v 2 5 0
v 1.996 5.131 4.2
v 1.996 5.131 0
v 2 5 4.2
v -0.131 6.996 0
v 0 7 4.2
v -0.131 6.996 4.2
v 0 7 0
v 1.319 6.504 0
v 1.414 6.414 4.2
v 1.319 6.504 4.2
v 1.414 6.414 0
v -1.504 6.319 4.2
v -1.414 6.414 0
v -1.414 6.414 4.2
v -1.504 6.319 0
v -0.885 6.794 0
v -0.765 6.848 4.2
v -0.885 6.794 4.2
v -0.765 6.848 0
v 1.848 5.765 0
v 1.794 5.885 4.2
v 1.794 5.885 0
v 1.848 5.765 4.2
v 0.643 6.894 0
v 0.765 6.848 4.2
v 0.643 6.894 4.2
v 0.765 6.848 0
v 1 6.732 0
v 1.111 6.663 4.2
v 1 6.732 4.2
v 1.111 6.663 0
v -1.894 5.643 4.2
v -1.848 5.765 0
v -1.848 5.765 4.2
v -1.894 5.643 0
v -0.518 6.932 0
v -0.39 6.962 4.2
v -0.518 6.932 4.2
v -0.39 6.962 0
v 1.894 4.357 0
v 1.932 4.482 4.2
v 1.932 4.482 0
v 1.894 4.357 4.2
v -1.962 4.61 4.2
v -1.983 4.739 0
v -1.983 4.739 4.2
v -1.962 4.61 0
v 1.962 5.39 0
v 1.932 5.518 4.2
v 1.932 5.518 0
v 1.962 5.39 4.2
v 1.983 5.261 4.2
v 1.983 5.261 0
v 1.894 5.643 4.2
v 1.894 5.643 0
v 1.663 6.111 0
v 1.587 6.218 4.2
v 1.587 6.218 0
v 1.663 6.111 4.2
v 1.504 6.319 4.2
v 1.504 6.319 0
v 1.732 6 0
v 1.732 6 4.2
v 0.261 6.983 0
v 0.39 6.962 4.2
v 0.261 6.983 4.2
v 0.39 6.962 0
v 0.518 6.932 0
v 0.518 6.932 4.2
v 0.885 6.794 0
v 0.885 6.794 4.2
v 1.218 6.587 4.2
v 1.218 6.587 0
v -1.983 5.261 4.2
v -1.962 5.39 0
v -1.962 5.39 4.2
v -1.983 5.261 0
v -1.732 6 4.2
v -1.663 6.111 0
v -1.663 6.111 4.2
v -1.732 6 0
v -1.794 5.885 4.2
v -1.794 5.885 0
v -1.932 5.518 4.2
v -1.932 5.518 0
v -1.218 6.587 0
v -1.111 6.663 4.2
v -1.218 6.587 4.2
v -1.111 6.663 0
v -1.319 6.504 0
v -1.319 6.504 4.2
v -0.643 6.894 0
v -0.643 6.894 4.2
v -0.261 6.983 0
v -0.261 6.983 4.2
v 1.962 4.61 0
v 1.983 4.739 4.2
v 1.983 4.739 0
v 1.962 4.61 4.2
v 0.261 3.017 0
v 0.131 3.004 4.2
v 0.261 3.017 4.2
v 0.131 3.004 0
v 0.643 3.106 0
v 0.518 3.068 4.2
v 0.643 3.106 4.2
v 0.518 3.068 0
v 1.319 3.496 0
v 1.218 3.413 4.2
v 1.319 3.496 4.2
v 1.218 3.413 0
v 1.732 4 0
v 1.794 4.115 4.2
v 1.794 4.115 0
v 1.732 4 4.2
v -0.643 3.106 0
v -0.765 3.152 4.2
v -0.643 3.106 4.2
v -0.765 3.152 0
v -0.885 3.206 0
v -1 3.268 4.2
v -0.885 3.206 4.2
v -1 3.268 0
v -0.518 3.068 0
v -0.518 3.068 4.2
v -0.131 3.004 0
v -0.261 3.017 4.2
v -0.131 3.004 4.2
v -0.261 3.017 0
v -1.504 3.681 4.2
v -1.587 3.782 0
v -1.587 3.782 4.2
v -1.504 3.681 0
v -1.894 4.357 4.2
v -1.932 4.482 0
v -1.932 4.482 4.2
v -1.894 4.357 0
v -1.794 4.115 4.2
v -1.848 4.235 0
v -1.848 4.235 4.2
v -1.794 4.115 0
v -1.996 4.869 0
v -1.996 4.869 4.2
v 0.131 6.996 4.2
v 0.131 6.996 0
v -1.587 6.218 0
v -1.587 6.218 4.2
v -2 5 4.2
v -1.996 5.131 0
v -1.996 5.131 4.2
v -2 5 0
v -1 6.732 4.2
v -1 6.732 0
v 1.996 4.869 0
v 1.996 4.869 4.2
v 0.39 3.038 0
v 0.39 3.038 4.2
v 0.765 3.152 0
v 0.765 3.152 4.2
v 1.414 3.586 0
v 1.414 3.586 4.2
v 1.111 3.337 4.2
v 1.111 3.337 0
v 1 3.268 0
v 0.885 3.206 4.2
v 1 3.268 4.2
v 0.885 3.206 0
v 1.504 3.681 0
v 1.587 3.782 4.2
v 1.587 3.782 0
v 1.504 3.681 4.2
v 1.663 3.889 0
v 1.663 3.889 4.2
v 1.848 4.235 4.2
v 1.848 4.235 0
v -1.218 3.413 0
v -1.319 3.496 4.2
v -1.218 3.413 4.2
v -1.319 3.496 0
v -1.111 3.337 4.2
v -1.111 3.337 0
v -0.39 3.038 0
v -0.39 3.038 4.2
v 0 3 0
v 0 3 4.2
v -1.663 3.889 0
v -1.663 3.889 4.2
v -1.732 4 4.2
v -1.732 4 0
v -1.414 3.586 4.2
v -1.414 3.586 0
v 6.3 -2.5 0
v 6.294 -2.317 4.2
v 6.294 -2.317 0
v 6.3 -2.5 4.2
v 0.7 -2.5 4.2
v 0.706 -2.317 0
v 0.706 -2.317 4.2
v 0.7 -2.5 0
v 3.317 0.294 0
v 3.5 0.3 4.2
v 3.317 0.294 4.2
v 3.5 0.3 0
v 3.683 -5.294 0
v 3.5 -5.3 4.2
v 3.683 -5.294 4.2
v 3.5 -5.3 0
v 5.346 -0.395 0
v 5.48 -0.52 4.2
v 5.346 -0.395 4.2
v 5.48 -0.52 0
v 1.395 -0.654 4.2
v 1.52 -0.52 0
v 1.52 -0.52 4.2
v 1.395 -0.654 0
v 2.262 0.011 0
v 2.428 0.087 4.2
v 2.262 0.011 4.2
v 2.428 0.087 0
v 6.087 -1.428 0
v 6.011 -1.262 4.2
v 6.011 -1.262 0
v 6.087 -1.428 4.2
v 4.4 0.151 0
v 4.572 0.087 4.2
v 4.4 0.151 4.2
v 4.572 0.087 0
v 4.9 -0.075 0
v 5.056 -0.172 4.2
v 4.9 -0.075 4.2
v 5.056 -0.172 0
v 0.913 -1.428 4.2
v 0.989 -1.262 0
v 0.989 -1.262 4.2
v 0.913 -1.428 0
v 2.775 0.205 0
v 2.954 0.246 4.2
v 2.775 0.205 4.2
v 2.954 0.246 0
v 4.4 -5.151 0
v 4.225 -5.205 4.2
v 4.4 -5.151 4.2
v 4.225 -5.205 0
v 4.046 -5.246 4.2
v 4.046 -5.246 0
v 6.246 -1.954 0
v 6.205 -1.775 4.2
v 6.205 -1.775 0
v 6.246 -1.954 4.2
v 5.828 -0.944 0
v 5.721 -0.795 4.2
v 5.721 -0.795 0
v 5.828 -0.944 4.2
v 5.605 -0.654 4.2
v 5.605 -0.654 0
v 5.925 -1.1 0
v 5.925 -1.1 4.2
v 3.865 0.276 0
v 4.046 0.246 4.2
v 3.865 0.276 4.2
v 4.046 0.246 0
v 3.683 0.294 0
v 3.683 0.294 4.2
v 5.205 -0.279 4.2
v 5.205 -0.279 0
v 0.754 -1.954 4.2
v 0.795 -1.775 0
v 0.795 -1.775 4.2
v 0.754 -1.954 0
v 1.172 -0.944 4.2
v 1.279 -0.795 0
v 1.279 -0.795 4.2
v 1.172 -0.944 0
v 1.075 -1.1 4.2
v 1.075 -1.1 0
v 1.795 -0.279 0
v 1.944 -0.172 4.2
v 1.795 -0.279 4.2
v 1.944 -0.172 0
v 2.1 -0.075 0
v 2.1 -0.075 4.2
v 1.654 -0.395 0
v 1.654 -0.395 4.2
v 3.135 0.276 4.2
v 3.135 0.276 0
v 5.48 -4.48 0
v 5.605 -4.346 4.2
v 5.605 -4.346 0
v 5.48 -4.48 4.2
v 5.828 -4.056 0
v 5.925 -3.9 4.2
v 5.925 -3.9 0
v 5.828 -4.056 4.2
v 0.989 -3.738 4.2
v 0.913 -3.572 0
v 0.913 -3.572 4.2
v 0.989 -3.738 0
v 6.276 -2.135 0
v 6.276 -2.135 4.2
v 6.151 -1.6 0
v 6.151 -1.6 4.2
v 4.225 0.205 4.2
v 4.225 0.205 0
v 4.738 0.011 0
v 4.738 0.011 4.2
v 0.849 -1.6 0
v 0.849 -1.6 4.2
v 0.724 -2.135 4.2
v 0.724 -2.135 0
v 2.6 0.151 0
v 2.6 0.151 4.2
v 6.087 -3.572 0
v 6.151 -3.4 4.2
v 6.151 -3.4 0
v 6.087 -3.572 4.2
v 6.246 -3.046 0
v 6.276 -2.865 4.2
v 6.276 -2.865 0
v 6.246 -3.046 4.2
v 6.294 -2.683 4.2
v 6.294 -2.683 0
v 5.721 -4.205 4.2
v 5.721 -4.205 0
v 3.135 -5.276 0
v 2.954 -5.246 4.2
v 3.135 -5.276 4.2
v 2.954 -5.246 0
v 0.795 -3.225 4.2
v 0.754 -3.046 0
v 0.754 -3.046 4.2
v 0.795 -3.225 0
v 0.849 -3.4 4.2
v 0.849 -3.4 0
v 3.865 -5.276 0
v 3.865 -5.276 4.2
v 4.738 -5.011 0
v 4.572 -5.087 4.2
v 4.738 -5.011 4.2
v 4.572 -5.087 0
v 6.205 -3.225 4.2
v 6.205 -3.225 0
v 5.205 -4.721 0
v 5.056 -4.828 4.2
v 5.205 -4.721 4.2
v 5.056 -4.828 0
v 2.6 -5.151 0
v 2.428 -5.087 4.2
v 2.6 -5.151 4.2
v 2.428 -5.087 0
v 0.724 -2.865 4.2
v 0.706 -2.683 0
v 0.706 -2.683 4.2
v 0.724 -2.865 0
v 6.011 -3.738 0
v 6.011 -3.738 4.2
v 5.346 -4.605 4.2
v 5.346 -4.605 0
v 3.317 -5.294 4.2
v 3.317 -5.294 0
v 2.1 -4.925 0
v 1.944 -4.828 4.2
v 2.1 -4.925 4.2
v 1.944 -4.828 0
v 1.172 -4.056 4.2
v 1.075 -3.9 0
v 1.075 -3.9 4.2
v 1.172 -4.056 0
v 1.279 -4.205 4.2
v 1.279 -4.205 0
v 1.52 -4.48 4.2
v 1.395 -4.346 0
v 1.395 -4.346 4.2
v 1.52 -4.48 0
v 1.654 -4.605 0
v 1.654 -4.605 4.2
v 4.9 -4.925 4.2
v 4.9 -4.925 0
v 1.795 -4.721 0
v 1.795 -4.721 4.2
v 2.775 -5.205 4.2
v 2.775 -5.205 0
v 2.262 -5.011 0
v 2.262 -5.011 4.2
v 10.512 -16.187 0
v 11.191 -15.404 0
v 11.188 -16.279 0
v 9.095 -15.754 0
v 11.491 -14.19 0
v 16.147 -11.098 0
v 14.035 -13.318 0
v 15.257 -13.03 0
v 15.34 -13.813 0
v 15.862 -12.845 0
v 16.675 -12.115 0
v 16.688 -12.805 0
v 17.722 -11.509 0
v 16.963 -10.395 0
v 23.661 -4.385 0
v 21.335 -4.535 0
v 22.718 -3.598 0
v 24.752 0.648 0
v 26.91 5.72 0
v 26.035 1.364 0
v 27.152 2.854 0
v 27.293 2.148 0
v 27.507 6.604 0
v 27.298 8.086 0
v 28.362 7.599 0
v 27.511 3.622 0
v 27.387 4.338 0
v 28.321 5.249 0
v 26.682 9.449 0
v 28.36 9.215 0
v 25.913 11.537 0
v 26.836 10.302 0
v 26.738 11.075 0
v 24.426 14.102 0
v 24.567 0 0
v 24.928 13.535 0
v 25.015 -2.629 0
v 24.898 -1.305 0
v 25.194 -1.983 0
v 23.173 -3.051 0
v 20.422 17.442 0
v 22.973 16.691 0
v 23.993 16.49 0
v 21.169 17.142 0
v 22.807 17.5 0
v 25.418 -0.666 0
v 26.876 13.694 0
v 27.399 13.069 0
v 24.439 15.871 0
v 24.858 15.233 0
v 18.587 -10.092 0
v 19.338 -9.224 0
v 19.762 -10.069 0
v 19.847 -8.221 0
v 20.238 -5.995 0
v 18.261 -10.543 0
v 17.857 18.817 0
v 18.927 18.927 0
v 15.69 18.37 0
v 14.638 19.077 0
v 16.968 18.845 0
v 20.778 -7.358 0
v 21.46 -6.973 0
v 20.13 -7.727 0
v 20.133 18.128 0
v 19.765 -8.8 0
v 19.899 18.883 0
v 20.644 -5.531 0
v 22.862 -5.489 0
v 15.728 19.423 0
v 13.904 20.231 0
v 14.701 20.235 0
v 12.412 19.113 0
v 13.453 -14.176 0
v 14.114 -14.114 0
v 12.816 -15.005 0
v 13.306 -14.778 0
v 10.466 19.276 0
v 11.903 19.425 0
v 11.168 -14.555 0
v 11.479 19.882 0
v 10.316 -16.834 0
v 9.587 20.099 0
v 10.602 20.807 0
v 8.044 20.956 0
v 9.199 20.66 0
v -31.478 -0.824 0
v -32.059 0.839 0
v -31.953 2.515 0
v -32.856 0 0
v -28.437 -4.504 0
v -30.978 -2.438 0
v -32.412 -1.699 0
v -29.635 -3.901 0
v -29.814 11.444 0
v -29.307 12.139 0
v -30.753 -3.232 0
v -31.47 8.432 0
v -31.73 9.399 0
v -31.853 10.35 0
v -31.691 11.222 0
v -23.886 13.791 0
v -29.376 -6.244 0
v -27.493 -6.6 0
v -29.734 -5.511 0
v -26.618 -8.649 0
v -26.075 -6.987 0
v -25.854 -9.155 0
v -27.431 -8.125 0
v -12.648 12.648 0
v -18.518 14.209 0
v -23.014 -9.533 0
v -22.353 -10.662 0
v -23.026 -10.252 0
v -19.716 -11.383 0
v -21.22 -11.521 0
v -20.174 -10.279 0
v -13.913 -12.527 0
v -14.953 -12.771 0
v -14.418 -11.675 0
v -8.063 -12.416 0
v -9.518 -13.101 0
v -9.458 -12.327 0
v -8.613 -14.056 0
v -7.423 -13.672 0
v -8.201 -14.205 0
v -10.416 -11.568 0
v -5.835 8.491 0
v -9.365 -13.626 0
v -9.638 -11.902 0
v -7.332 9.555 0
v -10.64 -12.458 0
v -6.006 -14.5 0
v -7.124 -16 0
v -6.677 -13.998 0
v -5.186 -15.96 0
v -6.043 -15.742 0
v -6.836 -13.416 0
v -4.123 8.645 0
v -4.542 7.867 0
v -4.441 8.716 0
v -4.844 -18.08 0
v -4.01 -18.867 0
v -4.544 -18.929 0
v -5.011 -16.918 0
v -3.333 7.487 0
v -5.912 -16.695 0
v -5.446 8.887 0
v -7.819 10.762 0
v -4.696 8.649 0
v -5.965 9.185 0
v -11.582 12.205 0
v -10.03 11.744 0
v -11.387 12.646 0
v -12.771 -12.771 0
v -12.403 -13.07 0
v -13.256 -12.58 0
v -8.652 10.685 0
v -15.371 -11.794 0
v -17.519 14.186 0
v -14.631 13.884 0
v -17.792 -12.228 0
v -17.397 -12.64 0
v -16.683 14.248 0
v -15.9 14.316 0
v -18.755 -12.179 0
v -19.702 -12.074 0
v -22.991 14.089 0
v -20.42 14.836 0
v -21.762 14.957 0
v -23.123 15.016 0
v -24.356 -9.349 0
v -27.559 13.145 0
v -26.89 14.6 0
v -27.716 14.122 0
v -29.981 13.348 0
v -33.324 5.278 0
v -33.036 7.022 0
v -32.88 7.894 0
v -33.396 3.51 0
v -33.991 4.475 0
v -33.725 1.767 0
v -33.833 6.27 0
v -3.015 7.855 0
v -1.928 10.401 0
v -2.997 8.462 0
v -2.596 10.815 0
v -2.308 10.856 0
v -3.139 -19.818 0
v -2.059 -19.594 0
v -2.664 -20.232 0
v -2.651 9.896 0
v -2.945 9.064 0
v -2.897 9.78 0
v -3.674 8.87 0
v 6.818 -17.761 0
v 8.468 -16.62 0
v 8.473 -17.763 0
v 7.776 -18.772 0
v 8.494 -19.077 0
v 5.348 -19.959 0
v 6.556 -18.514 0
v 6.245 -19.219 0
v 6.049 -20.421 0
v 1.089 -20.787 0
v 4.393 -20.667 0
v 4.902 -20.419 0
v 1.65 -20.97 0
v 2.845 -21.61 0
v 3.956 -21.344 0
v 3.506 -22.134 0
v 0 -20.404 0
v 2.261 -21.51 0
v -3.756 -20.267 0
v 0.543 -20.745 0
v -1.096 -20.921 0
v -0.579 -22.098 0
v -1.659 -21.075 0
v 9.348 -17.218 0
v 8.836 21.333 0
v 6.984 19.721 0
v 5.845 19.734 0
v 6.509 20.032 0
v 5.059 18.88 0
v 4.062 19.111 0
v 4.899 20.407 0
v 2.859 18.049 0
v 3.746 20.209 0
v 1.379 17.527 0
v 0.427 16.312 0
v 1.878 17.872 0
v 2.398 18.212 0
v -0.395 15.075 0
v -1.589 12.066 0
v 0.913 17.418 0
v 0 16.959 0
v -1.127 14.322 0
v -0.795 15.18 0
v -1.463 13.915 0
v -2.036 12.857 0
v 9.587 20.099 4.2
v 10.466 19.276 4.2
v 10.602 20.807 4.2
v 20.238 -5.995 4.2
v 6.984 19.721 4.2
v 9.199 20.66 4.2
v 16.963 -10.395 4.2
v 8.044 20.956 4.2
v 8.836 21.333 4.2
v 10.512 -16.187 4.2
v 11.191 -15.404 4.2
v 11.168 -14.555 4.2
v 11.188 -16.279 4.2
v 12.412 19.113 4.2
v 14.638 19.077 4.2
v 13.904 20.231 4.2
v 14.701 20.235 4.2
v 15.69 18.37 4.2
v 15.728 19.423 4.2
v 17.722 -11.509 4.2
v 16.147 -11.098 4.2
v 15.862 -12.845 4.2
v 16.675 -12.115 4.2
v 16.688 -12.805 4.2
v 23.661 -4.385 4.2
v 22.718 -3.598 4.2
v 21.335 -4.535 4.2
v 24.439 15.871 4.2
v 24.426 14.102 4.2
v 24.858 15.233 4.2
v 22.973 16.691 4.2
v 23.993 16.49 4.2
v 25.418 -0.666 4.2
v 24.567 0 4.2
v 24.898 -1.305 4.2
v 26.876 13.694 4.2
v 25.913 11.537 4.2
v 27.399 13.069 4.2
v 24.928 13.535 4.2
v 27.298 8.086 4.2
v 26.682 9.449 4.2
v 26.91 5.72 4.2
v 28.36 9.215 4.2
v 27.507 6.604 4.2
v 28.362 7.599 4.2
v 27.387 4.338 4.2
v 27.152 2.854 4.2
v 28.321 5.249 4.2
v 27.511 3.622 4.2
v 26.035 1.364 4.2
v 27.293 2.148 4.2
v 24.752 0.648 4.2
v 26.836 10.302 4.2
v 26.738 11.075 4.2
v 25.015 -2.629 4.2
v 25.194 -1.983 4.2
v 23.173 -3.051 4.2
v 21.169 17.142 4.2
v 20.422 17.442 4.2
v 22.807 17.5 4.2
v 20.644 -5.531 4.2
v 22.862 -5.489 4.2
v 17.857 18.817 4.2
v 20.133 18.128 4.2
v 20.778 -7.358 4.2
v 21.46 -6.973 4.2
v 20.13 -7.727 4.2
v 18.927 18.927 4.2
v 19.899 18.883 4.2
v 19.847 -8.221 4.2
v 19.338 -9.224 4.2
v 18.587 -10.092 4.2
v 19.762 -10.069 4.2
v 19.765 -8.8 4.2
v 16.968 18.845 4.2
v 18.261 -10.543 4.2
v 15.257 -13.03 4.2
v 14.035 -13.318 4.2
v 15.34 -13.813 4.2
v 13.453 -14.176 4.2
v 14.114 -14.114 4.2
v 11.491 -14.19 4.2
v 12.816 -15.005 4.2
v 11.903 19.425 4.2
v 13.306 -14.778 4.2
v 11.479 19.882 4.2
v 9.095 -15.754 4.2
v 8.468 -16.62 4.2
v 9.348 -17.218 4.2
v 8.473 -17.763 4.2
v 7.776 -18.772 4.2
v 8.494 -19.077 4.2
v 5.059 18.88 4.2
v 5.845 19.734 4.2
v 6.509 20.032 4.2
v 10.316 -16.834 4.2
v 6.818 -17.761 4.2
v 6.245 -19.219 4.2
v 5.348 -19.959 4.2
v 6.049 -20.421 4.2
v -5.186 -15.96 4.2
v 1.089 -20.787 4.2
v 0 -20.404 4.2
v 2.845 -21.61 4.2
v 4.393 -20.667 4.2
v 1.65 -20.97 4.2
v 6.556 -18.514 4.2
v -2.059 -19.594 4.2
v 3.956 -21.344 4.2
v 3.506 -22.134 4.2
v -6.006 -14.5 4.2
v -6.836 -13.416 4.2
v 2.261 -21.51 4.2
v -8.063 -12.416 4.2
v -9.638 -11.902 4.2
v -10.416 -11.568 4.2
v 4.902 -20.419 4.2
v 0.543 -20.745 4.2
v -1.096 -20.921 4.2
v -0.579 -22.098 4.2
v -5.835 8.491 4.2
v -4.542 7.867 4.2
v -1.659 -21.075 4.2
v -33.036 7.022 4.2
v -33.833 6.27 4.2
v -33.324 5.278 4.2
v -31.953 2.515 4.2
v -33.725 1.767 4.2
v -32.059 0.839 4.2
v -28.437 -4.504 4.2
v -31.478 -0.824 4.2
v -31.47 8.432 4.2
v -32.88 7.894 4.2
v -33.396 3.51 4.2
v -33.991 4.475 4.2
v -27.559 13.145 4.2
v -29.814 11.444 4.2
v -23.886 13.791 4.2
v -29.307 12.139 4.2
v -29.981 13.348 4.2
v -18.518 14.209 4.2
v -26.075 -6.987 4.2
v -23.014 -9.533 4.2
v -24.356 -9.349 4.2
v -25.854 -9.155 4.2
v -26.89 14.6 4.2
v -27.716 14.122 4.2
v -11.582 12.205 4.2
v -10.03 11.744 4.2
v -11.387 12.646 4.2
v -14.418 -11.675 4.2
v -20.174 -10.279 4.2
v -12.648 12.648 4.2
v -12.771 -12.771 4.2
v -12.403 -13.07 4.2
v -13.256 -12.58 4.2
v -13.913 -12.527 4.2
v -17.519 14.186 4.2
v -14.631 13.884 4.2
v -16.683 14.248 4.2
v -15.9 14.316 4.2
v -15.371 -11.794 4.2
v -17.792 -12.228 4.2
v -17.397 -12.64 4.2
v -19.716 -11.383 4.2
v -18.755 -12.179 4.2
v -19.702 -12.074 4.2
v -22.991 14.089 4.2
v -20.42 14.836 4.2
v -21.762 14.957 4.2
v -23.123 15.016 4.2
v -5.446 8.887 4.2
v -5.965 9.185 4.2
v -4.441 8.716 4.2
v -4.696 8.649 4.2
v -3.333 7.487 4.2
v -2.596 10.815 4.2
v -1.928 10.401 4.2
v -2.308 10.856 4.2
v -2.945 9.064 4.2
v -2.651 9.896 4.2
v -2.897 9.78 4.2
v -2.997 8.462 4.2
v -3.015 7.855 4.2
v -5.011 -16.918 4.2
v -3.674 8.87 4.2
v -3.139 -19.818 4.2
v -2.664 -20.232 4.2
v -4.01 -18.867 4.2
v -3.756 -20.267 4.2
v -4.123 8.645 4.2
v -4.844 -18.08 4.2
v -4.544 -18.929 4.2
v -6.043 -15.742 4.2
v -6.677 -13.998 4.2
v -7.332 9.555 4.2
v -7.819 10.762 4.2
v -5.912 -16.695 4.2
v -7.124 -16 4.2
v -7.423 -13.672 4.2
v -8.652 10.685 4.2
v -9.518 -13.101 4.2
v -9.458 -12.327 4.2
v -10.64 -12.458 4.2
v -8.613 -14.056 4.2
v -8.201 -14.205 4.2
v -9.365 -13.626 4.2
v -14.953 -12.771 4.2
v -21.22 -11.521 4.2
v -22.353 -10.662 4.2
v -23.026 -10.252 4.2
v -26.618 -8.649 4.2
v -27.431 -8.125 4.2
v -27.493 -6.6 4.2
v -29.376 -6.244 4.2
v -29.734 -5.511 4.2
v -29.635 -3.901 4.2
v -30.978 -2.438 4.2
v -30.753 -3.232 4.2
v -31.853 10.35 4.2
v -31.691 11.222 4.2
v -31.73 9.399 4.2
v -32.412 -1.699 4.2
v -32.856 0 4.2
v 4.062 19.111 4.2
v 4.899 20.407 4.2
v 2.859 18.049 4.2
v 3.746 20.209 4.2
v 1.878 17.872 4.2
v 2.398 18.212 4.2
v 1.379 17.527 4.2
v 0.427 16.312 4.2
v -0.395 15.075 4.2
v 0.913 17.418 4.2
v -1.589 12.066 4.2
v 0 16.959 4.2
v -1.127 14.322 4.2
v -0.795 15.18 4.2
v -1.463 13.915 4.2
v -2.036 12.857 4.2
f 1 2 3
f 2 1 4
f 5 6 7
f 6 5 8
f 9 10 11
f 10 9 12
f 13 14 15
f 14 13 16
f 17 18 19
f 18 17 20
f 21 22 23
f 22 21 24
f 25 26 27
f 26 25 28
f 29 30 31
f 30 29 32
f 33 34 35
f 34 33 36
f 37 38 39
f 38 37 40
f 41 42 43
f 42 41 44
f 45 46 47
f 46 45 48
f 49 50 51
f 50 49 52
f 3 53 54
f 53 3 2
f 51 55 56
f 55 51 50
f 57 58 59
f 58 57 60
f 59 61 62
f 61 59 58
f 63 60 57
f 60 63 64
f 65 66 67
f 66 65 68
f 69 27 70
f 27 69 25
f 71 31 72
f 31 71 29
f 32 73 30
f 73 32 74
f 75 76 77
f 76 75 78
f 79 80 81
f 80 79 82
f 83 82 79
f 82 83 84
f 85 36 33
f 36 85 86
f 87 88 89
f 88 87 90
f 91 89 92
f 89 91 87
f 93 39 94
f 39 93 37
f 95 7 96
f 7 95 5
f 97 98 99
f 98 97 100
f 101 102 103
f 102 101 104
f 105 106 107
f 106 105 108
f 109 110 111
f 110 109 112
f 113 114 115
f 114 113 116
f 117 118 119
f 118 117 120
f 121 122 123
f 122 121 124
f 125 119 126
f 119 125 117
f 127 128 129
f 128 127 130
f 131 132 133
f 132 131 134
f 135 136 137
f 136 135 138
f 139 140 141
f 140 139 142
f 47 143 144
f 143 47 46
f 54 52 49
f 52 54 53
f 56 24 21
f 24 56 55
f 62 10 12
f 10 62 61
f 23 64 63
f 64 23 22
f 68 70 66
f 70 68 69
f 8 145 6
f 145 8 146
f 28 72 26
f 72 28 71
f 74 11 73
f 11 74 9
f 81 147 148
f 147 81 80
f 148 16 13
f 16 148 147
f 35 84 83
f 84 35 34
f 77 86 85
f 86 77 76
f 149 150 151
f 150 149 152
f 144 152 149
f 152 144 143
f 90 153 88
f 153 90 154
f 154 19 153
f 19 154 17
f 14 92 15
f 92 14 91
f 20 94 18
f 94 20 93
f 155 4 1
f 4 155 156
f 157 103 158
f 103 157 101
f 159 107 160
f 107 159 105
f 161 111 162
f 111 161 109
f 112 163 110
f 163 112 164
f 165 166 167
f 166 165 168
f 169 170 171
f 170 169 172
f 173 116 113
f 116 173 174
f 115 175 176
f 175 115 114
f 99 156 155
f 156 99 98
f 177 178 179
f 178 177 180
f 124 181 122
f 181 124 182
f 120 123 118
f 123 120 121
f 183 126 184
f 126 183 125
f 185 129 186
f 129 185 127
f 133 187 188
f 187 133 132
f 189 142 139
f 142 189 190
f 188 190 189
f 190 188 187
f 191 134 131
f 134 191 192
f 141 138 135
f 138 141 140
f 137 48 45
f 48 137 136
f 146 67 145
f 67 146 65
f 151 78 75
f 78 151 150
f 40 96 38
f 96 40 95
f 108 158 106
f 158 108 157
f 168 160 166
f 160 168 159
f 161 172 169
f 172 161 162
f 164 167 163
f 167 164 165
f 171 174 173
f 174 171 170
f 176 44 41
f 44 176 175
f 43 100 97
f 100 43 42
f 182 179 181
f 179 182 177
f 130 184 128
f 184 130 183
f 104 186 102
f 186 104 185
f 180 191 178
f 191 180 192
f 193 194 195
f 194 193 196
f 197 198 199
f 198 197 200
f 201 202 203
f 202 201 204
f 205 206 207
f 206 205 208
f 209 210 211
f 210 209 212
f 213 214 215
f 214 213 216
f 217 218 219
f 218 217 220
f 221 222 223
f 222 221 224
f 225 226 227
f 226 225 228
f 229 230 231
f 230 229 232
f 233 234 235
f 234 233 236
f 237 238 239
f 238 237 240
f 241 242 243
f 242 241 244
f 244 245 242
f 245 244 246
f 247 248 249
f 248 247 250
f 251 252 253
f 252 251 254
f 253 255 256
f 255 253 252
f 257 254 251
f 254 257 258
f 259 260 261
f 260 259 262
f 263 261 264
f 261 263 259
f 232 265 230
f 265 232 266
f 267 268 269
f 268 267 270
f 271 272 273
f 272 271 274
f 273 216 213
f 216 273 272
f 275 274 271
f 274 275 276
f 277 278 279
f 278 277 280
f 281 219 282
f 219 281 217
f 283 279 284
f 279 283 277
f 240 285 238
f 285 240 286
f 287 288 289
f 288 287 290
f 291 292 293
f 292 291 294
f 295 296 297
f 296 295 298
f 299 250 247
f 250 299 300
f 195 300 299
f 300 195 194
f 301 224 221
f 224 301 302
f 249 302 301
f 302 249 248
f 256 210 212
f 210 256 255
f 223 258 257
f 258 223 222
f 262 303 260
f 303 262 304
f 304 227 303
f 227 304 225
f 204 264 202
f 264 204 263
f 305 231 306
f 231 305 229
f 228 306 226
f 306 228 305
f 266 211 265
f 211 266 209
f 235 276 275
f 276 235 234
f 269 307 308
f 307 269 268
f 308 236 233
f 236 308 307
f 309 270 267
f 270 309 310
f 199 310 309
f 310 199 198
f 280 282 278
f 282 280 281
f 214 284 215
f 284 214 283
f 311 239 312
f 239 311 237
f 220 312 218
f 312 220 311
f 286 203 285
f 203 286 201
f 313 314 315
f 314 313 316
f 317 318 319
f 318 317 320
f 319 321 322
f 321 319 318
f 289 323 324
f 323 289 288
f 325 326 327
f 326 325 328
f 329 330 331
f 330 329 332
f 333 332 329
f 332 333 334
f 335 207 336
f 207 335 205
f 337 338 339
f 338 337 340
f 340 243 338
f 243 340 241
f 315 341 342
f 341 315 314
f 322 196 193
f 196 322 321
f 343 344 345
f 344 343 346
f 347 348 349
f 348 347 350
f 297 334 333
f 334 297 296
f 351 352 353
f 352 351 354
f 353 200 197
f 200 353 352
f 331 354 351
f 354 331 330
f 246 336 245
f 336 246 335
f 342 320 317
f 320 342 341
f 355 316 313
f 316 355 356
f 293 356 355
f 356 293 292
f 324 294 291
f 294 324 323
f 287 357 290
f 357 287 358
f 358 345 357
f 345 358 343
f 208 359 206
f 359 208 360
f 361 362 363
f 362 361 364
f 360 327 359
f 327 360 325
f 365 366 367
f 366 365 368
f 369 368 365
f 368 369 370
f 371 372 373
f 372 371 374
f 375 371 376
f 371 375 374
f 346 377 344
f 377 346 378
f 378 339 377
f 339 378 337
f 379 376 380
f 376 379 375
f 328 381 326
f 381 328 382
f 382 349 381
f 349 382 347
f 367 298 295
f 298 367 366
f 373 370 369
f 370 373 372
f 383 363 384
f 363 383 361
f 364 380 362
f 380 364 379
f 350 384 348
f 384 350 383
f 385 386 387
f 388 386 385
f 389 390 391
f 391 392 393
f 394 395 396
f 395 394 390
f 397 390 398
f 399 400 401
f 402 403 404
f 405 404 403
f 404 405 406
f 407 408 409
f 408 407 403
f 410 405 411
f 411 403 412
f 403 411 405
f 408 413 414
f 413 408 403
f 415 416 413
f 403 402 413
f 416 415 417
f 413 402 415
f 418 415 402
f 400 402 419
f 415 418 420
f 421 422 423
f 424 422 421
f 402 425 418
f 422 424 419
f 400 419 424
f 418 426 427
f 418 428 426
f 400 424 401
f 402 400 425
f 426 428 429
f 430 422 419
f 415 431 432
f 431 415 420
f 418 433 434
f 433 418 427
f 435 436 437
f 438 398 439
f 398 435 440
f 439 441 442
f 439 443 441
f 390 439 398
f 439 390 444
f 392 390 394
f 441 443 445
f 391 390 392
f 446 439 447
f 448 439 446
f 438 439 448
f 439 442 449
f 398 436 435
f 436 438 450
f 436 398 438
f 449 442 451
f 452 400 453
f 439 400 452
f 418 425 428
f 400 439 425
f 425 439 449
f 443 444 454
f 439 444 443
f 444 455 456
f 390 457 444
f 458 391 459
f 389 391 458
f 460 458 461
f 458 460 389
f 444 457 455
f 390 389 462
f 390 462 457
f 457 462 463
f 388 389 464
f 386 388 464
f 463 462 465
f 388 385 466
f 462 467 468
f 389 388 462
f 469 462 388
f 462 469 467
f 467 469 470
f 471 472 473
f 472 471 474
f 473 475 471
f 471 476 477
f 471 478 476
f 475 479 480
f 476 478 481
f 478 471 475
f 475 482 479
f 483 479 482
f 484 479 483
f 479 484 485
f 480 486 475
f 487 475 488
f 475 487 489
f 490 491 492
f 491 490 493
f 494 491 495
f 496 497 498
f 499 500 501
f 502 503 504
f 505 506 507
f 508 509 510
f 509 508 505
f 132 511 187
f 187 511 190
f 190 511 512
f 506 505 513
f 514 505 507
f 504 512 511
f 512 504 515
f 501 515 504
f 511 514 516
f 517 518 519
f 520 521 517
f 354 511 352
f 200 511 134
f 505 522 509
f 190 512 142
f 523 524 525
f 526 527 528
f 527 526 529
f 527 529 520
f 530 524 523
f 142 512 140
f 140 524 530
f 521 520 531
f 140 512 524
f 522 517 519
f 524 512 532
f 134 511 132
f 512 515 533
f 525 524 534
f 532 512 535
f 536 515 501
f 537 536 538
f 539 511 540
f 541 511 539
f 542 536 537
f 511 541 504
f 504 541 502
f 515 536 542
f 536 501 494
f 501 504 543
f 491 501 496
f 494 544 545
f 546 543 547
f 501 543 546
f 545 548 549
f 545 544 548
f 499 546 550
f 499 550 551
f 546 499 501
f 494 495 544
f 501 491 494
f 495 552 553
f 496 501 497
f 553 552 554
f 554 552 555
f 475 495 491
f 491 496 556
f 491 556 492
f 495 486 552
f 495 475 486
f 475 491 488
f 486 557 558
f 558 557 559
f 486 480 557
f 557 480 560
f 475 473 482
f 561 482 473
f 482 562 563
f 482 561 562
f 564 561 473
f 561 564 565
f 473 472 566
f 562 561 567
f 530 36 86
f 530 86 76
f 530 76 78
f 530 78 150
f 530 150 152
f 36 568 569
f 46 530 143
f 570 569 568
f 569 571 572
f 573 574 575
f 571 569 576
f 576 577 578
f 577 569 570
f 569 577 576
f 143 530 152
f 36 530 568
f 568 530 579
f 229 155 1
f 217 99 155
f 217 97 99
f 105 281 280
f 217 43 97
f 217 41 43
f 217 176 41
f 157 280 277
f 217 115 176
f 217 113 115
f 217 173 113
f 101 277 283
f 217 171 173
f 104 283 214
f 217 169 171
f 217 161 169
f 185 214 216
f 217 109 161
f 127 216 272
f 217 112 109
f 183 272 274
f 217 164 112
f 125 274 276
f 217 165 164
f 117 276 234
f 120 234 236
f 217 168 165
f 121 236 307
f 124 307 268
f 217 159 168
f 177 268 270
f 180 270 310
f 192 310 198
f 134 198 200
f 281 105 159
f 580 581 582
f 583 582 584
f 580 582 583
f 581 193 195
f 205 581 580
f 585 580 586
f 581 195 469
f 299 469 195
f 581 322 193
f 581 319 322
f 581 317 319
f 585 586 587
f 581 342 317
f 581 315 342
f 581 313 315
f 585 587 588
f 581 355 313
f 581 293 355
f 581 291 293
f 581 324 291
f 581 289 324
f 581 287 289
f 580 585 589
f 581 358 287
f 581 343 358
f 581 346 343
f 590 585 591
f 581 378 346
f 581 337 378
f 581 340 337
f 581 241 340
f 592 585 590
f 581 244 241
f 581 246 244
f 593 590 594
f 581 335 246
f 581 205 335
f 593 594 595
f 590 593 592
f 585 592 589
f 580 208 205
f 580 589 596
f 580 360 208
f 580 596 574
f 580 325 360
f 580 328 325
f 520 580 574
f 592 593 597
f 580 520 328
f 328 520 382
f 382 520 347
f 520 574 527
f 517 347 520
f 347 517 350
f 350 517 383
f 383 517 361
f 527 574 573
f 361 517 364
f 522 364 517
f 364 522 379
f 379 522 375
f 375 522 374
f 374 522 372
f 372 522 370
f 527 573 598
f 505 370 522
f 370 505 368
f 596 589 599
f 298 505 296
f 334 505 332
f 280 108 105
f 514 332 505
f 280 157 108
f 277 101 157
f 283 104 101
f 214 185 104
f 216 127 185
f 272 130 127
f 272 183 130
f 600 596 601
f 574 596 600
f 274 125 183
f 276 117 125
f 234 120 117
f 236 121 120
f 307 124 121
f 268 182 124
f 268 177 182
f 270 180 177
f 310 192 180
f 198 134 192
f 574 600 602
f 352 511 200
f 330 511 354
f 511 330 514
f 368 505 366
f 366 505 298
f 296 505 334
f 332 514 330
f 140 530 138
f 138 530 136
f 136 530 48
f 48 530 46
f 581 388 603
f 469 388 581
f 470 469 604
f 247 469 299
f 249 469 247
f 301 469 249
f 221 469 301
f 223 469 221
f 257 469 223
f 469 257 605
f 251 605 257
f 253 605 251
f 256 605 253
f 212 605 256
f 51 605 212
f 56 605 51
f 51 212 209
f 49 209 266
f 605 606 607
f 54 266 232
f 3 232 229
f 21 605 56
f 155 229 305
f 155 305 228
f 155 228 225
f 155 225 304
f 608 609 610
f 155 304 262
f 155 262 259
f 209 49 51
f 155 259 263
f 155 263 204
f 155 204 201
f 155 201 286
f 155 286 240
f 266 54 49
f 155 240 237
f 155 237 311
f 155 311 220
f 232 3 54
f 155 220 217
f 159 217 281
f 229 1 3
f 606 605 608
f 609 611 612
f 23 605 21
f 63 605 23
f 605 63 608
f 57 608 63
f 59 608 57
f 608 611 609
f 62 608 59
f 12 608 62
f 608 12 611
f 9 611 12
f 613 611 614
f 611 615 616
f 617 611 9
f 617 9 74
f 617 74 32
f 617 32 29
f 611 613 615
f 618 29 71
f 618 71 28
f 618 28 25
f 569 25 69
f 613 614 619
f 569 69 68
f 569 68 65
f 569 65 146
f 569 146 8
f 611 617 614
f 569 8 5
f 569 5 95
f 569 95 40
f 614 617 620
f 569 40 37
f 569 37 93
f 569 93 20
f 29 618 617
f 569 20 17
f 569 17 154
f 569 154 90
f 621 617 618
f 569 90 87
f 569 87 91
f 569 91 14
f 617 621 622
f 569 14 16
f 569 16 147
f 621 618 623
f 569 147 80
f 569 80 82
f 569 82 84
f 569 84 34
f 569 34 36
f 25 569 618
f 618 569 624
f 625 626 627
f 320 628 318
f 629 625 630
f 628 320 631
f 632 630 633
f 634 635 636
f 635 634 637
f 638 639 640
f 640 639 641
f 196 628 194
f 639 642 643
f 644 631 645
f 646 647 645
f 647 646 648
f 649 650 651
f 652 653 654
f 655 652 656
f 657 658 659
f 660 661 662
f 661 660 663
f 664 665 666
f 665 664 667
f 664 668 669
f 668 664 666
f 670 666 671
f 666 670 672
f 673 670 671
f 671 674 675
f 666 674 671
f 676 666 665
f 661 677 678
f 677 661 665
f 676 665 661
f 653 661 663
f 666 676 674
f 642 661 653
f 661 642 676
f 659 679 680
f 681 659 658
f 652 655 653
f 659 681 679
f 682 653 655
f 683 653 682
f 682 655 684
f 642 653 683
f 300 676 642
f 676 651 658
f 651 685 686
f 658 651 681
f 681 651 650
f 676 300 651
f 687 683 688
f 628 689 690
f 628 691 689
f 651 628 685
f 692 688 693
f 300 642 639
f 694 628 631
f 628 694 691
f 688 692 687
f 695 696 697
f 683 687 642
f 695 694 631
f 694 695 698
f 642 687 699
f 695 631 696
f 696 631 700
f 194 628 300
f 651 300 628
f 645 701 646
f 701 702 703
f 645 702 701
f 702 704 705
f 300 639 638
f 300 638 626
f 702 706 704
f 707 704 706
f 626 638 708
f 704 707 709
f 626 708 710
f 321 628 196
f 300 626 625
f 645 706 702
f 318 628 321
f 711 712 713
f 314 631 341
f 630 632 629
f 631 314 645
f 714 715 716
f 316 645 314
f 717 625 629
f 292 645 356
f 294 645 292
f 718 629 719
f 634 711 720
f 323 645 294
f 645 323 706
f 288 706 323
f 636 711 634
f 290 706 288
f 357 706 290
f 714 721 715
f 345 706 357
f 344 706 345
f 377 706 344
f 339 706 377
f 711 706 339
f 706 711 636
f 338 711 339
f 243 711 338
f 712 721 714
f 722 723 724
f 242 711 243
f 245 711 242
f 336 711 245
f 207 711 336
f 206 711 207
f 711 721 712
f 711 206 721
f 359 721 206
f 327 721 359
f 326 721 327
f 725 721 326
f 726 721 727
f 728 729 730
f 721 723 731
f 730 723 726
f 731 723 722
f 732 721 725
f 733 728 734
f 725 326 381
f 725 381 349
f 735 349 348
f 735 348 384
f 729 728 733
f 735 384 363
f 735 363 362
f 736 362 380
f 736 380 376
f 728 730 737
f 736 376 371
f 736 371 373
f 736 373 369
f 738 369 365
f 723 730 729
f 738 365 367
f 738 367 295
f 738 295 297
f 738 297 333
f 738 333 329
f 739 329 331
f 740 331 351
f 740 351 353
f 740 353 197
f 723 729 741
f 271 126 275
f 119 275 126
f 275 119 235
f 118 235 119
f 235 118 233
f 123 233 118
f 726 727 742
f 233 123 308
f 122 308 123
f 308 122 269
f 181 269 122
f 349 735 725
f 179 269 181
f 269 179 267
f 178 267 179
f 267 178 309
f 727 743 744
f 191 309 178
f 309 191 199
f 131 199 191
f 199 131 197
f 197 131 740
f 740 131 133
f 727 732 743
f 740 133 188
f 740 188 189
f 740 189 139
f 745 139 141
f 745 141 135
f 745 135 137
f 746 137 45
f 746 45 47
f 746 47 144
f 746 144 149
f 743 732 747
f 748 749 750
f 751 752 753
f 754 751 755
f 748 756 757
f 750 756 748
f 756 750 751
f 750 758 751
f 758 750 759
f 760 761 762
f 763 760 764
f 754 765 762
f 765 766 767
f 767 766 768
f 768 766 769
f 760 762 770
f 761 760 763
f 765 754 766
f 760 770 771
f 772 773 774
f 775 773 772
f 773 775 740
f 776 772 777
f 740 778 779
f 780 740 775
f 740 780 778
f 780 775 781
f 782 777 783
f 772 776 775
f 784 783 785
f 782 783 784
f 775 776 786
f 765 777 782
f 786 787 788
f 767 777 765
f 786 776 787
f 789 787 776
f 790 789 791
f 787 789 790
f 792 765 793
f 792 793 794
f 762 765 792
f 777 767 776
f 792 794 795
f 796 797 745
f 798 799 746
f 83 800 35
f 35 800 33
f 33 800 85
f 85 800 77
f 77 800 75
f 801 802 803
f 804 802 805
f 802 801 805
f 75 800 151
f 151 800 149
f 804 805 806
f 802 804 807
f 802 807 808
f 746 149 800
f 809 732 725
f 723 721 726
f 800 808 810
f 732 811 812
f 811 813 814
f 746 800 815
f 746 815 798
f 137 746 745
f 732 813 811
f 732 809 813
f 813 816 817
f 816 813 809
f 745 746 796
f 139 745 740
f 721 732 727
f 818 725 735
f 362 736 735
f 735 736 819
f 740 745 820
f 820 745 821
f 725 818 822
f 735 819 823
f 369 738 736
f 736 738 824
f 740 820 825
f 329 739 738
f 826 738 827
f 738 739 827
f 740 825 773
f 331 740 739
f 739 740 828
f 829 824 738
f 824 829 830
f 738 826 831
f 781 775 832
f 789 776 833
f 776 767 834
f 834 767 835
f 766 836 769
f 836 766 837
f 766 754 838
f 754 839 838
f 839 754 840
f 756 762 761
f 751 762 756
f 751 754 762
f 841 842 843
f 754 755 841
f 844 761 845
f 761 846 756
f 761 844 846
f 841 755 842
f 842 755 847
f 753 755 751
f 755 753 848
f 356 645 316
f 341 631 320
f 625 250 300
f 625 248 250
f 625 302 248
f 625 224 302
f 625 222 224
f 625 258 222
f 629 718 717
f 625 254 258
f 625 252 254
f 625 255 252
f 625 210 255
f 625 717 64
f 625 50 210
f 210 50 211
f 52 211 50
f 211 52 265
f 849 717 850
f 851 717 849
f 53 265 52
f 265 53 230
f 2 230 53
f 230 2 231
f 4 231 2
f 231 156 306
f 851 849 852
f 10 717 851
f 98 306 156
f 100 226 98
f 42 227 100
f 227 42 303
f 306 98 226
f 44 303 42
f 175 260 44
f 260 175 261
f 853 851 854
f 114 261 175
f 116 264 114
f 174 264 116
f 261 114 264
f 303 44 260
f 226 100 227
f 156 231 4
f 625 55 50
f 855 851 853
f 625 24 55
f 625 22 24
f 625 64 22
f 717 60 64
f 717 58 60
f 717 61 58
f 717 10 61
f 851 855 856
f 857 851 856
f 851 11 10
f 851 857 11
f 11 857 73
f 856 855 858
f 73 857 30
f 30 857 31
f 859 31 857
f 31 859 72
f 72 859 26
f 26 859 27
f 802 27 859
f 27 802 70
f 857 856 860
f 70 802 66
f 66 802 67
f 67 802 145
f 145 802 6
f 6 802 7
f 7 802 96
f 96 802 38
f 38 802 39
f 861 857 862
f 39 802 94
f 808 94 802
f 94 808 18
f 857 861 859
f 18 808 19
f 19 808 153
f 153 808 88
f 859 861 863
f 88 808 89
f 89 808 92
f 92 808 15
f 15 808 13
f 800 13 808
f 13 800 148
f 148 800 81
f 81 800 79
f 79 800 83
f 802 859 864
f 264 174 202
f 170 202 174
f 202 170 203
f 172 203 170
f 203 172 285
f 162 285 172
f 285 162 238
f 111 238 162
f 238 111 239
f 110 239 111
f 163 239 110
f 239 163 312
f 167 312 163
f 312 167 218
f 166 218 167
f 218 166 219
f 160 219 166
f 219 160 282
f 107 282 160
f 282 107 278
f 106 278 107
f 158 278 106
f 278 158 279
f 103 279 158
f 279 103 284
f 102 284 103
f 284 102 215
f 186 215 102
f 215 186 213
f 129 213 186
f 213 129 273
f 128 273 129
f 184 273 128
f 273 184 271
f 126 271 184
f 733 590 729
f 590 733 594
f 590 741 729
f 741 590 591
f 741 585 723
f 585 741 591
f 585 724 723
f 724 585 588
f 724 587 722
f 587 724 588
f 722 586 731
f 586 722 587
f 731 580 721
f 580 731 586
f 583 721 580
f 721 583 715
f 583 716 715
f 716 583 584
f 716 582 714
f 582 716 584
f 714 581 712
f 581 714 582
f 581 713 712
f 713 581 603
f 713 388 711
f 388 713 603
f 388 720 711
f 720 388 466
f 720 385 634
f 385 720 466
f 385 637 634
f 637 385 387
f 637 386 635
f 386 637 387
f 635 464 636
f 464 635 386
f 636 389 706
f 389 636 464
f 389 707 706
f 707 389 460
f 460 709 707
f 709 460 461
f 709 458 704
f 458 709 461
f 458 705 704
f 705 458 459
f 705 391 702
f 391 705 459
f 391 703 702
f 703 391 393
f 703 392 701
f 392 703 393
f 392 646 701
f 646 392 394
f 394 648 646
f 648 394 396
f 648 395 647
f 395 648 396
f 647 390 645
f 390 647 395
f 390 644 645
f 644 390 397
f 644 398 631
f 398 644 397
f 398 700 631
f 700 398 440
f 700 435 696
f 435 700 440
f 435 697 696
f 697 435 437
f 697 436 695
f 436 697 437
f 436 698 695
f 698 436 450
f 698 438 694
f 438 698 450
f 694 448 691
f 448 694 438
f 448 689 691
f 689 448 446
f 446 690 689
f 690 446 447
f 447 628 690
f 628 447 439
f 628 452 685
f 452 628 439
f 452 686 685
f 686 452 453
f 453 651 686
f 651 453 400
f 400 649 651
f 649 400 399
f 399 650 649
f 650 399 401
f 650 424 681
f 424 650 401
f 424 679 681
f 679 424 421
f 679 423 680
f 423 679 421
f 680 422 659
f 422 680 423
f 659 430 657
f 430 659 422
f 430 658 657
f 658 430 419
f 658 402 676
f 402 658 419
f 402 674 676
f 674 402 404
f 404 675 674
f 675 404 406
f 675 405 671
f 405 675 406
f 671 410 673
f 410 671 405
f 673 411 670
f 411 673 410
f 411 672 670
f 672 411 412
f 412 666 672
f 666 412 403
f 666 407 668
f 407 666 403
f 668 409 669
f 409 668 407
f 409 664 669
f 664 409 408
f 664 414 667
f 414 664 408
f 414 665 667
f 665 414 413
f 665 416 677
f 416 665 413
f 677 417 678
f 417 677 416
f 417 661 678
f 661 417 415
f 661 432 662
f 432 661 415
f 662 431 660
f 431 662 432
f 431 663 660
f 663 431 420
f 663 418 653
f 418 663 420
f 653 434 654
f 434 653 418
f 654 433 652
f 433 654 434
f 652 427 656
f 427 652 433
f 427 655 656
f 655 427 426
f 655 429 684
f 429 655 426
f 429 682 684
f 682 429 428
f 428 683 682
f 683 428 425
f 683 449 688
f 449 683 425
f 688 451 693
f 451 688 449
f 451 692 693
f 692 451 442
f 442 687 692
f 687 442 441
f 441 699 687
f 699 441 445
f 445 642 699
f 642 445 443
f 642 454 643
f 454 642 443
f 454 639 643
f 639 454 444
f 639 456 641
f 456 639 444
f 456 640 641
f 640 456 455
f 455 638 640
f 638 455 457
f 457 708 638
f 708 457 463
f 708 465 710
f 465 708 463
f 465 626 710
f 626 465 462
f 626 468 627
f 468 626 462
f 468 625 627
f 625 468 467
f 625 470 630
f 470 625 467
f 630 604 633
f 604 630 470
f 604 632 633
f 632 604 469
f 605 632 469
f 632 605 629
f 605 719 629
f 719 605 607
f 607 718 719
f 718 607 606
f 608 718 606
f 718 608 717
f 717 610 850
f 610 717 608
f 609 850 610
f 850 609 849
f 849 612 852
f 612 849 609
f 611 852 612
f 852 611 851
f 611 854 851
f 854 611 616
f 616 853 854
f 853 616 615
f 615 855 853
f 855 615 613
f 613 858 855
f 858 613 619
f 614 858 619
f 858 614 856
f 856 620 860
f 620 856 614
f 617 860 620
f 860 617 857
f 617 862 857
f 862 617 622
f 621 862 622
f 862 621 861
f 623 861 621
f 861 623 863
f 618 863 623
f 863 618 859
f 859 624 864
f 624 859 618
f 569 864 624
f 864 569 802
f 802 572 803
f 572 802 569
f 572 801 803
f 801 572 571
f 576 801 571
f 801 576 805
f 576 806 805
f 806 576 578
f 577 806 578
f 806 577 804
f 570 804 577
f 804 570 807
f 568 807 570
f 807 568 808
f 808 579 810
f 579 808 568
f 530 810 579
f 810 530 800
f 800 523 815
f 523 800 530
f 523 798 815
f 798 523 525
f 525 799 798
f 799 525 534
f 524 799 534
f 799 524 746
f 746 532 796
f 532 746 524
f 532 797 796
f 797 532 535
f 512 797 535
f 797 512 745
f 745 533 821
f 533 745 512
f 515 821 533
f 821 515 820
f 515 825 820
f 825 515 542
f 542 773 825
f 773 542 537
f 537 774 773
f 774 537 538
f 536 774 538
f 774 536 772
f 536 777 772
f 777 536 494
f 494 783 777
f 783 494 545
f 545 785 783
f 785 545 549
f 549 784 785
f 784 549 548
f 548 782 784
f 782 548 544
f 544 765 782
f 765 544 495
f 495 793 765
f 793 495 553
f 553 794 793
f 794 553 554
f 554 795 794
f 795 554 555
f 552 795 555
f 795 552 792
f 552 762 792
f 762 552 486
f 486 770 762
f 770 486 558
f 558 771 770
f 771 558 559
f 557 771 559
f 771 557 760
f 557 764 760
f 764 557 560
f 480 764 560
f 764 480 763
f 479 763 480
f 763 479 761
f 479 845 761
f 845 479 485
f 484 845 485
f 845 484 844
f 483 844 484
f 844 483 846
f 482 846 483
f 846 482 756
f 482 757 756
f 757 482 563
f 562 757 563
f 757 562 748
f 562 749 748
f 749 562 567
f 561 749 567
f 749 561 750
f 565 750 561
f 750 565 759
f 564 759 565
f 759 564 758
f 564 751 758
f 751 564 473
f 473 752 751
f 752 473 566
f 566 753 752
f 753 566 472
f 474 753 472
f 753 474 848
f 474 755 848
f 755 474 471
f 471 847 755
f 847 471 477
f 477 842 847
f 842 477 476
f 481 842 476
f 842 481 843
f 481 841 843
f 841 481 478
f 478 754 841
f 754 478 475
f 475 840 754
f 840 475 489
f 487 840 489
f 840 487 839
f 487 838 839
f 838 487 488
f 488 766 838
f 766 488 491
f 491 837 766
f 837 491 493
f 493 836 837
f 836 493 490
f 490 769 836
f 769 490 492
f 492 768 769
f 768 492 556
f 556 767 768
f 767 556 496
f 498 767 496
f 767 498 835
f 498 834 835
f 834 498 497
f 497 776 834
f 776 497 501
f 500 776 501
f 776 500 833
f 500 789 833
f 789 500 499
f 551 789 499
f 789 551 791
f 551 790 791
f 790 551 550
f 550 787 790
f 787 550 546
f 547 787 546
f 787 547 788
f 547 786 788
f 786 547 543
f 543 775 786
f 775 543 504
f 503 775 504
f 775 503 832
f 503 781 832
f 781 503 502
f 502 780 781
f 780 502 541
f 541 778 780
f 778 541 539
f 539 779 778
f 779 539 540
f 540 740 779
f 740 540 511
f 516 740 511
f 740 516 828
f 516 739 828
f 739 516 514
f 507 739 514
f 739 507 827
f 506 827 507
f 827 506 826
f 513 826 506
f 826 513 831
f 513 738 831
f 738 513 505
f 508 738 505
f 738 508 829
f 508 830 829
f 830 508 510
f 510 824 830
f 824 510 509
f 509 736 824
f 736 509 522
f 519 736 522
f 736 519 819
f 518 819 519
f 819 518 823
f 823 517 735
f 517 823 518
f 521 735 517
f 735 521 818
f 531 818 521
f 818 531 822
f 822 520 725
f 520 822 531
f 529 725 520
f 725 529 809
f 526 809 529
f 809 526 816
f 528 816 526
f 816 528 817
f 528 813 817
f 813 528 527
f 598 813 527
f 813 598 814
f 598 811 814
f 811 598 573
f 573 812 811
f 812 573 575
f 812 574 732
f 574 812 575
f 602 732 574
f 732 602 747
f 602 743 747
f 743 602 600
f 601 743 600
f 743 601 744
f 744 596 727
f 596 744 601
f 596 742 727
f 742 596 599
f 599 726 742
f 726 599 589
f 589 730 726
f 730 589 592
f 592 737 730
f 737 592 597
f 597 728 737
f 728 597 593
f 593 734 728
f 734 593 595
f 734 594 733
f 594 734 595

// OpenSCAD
$fn=96;
thickness_mm = 4.2;
holes = [[0.0, 5.0, 2.0], [3.5, -2.5, 2.8]];
pts = [[24.5672, 0.0], [24.7525, 0.6482], [26.0351, 1.3644], [27.2927, 2.148], [27.152, 2.8538], [27.5106, 3.6218], [27.387, 4.3377], [28.3208, 5.2489], [26.9095, 5.7198], [27.5068, 6.6038], [28.3615, 7.5994], [27.2975, 8.0859], [28.3596, 9.2146], [26.6825, 9.4488], [26.8365, 10.3016], [26.7384, 11.0754], [25.9127, 11.5371], [27.3993, 13.0688], [26.8762, 13.6941], [24.9279, 13.5348], [24.426, 14.1024], [24.8575, 15.2327], [24.4389, 15.8708], [23.9931, 16.49], [22.9728, 16.6907], [22.8067, 17.5002], [21.1686, 17.142], [20.4219, 17.4419], [20.1329, 18.1277], [19.8986, 18.8831], [18.9271, 18.9271], [17.8569, 18.8173], [16.9684, 18.8453], [15.6898, 18.3705], [15.7282, 19.4228], [14.6382, 19.0768], [14.7014, 20.2347], [13.9043, 20.2309], [12.4121, 19.113], [11.9034, 19.4246], [11.479, 19.8822], [10.4661, 19.2762], [10.6017, 20.807], [9.5869, 20.0994], [9.1986, 20.6605], [8.8364, 21.3329], [8.0444, 20.9563], [6.9837, 19.7214], [6.5086, 20.0315], [5.8454, 19.7338], [5.0589, 18.88], [4.8993, 20.4072], [4.0622, 19.111], [3.7455, 20.209], [2.8587, 18.0489], [2.3977, 18.2124], [1.8785, 17.8725], [1.3794, 17.5266], [0.9129, 17.4185], [0.4272, 16.3125], [0.0, 16.9589], [-0.3947, 15.0749], [-0.7955, 15.1795], [-1.1271, 14.3216], [-1.4626, 13.9154], [-1.5886, 12.0662], [-2.0364, 12.8572], [-1.9278, 10.4014], [-2.3076, 10.8564], [-2.5964, 10.8147], [-2.6515, 9.8956], [-2.897, 9.7802], [-2.9452, 9.0645], [-2.9966, 8.4621], [-3.0152, 7.8548], [-3.6743, 8.8705], [-3.3334, 7.4869], [-4.1233, 8.6447], [-4.4409, 8.7157], [-4.6961, 8.6492], [-4.5419, 7.8668], [-5.4459, 8.8869], [-5.9651, 9.1854], [-5.8355, 8.4906], [-7.8193, 10.7623], [-7.3316, 9.5547], [-8.6525, 10.6849], [-10.0303, 11.744], [-11.3867, 12.6462], [-11.5817, 12.2046], [-12.6485, 12.6485], [-14.631, 13.8843], [-15.8995, 14.316], [-16.6827, 14.2484], [-17.5187, 14.1863], [-18.5176, 14.209], [-20.4205, 14.8364], [-21.7621, 14.9567], [-23.1227, 15.0161], [-22.9912, 14.089], [-23.8864, 13.7908], [-26.8905, 14.6004], [-27.7155, 14.1218], [-27.5593, 13.1451], [-29.9812, 13.3485], [-29.3068, 12.1393], [-29.8135, 11.4443], [-31.6907, 11.2223], [-31.8526, 10.3495], [-31.7301, 9.3989], [-31.4695, 8.4322], [-32.8804, 7.8939], [-33.0355, 7.0219], [-33.8326, 6.2705], [-33.3236, 5.2779], [-33.9913, 4.475], [-33.3957, 3.51], [-31.9533, 2.5148], [-33.7247, 1.7674], [-32.0586, 0.8395], [-32.8564, 0.0], [-31.4778, -0.8243], [-32.412, -1.6986], [-30.9785, -2.4381], [-30.753, -3.2323], [-29.6352, -3.9015], [-28.4372, -4.504], [-29.7336, -5.5108], [-29.3757, -6.244], [-27.493, -6.6005], [-26.0748, -6.9867], [-27.4311, -8.1255], [-26.6179, -8.6487], [-25.854, -9.1554], [-24.3557, -9.3493], [-23.0141, -9.5328], [-23.0261, -10.2519], [-22.3531, -10.6619], [-20.1736, -10.279], [-21.2199, -11.5214], [-19.7165, -11.3833], [-19.7024, -12.0737], [-18.7546, -12.1794], [-17.7921, -12.2282], [-17.3973, -12.6399], [-15.3706, -11.7943], [-14.4179, -11.6754], [-14.9532, -12.7713], [-13.913, -12.5273], [-13.2564, -12.5799], [-12.7714, -12.7714], [-12.4034, -13.0704], [-10.4159, -11.5681], [-10.6397, -12.4575], [-9.6381, -11.9021], [-9.4585, -12.3266], [-9.5182, -13.1007], [-9.3647, -13.6258], [-8.0633, -12.4165], [-8.6132, -14.0555], [-8.2013, -14.2051], [-7.4231, -13.6717], [-6.8356, -13.4157], [-6.6769, -13.9984], [-7.1237, -16.0001], [-6.0063, -14.5004], [-6.0428, -15.7419], [-5.9121, -16.6951], [-5.1856, -15.9597], [-5.0114, -16.9181], [-4.8444, -18.0797], [-4.5445, -18.9292], [-4.0104, -18.8674], [-3.7563, -20.2672], [-3.1389, -19.8181], [-2.6636, -20.2318], [-2.0594, -19.5944], [-1.6586, -21.0748], [-1.0964, -20.9212], [-0.5786, -22.0975], [-0.0, -20.4043], [0.5432, -20.7453], [1.0894, -20.787], [1.6504, -20.9697], [2.2607, -21.5095], [2.845, -21.6097], [3.5056, -22.1336], [3.9559, -21.3441], [4.3928, -20.6666], [4.9022, -20.4189], [5.3479, -19.9586], [6.0489, -20.4206], [6.2447, -19.2192], [6.5563, -18.5144], [6.8177, -17.7606], [7.7757, -18.7721], [8.4936, -19.077], [8.4726, -17.7632], [8.4684, -16.6202], [9.3485, -17.2178], [9.0954, -15.7536], [10.316, -16.8342], [10.5121, -16.1872], [11.1884, -16.2792], [11.1914, -15.4037], [11.1681, -14.5546], [11.4906, -14.1897], [12.8156, -15.0051], [13.3062, -14.7781], [13.4526, -14.176], [14.1139, -14.1139], [14.0348, -13.3185], [15.3405, -13.8126], [15.2567, -13.0304], [15.8619, -12.8447], [16.6882, -12.8053], [16.6751, -12.1152], [16.1473, -11.0977], [17.7224, -11.5091], [16.9631, -10.395], [18.2611, -10.5431], [18.5871, -10.092], [19.7618, -10.0691], [19.3377, -9.2236], [19.7648, -8.7998], [19.8471, -8.221], [20.1295, -7.727], [20.7778, -7.3578], [21.4602, -6.9729], [20.2375, -5.9946], [20.6439, -5.5315], [22.8615, -5.4886], [21.335, -4.5349], [23.6614, -4.3854], [22.7179, -3.5982], [23.1726, -3.0507], [25.0148, -2.6292], [25.1938, -1.9828], [24.8979, -1.3048], [25.4177, -0.6656]];
module body(){
  linear_extrude(height=thickness_mm) polygon(points=pts);
}
difference(){
  body();
  for(h=holes){
    translate([h[0], h[1], -1]) cylinder(h=thickness_mm+2, r=h[2]);
  }
}
